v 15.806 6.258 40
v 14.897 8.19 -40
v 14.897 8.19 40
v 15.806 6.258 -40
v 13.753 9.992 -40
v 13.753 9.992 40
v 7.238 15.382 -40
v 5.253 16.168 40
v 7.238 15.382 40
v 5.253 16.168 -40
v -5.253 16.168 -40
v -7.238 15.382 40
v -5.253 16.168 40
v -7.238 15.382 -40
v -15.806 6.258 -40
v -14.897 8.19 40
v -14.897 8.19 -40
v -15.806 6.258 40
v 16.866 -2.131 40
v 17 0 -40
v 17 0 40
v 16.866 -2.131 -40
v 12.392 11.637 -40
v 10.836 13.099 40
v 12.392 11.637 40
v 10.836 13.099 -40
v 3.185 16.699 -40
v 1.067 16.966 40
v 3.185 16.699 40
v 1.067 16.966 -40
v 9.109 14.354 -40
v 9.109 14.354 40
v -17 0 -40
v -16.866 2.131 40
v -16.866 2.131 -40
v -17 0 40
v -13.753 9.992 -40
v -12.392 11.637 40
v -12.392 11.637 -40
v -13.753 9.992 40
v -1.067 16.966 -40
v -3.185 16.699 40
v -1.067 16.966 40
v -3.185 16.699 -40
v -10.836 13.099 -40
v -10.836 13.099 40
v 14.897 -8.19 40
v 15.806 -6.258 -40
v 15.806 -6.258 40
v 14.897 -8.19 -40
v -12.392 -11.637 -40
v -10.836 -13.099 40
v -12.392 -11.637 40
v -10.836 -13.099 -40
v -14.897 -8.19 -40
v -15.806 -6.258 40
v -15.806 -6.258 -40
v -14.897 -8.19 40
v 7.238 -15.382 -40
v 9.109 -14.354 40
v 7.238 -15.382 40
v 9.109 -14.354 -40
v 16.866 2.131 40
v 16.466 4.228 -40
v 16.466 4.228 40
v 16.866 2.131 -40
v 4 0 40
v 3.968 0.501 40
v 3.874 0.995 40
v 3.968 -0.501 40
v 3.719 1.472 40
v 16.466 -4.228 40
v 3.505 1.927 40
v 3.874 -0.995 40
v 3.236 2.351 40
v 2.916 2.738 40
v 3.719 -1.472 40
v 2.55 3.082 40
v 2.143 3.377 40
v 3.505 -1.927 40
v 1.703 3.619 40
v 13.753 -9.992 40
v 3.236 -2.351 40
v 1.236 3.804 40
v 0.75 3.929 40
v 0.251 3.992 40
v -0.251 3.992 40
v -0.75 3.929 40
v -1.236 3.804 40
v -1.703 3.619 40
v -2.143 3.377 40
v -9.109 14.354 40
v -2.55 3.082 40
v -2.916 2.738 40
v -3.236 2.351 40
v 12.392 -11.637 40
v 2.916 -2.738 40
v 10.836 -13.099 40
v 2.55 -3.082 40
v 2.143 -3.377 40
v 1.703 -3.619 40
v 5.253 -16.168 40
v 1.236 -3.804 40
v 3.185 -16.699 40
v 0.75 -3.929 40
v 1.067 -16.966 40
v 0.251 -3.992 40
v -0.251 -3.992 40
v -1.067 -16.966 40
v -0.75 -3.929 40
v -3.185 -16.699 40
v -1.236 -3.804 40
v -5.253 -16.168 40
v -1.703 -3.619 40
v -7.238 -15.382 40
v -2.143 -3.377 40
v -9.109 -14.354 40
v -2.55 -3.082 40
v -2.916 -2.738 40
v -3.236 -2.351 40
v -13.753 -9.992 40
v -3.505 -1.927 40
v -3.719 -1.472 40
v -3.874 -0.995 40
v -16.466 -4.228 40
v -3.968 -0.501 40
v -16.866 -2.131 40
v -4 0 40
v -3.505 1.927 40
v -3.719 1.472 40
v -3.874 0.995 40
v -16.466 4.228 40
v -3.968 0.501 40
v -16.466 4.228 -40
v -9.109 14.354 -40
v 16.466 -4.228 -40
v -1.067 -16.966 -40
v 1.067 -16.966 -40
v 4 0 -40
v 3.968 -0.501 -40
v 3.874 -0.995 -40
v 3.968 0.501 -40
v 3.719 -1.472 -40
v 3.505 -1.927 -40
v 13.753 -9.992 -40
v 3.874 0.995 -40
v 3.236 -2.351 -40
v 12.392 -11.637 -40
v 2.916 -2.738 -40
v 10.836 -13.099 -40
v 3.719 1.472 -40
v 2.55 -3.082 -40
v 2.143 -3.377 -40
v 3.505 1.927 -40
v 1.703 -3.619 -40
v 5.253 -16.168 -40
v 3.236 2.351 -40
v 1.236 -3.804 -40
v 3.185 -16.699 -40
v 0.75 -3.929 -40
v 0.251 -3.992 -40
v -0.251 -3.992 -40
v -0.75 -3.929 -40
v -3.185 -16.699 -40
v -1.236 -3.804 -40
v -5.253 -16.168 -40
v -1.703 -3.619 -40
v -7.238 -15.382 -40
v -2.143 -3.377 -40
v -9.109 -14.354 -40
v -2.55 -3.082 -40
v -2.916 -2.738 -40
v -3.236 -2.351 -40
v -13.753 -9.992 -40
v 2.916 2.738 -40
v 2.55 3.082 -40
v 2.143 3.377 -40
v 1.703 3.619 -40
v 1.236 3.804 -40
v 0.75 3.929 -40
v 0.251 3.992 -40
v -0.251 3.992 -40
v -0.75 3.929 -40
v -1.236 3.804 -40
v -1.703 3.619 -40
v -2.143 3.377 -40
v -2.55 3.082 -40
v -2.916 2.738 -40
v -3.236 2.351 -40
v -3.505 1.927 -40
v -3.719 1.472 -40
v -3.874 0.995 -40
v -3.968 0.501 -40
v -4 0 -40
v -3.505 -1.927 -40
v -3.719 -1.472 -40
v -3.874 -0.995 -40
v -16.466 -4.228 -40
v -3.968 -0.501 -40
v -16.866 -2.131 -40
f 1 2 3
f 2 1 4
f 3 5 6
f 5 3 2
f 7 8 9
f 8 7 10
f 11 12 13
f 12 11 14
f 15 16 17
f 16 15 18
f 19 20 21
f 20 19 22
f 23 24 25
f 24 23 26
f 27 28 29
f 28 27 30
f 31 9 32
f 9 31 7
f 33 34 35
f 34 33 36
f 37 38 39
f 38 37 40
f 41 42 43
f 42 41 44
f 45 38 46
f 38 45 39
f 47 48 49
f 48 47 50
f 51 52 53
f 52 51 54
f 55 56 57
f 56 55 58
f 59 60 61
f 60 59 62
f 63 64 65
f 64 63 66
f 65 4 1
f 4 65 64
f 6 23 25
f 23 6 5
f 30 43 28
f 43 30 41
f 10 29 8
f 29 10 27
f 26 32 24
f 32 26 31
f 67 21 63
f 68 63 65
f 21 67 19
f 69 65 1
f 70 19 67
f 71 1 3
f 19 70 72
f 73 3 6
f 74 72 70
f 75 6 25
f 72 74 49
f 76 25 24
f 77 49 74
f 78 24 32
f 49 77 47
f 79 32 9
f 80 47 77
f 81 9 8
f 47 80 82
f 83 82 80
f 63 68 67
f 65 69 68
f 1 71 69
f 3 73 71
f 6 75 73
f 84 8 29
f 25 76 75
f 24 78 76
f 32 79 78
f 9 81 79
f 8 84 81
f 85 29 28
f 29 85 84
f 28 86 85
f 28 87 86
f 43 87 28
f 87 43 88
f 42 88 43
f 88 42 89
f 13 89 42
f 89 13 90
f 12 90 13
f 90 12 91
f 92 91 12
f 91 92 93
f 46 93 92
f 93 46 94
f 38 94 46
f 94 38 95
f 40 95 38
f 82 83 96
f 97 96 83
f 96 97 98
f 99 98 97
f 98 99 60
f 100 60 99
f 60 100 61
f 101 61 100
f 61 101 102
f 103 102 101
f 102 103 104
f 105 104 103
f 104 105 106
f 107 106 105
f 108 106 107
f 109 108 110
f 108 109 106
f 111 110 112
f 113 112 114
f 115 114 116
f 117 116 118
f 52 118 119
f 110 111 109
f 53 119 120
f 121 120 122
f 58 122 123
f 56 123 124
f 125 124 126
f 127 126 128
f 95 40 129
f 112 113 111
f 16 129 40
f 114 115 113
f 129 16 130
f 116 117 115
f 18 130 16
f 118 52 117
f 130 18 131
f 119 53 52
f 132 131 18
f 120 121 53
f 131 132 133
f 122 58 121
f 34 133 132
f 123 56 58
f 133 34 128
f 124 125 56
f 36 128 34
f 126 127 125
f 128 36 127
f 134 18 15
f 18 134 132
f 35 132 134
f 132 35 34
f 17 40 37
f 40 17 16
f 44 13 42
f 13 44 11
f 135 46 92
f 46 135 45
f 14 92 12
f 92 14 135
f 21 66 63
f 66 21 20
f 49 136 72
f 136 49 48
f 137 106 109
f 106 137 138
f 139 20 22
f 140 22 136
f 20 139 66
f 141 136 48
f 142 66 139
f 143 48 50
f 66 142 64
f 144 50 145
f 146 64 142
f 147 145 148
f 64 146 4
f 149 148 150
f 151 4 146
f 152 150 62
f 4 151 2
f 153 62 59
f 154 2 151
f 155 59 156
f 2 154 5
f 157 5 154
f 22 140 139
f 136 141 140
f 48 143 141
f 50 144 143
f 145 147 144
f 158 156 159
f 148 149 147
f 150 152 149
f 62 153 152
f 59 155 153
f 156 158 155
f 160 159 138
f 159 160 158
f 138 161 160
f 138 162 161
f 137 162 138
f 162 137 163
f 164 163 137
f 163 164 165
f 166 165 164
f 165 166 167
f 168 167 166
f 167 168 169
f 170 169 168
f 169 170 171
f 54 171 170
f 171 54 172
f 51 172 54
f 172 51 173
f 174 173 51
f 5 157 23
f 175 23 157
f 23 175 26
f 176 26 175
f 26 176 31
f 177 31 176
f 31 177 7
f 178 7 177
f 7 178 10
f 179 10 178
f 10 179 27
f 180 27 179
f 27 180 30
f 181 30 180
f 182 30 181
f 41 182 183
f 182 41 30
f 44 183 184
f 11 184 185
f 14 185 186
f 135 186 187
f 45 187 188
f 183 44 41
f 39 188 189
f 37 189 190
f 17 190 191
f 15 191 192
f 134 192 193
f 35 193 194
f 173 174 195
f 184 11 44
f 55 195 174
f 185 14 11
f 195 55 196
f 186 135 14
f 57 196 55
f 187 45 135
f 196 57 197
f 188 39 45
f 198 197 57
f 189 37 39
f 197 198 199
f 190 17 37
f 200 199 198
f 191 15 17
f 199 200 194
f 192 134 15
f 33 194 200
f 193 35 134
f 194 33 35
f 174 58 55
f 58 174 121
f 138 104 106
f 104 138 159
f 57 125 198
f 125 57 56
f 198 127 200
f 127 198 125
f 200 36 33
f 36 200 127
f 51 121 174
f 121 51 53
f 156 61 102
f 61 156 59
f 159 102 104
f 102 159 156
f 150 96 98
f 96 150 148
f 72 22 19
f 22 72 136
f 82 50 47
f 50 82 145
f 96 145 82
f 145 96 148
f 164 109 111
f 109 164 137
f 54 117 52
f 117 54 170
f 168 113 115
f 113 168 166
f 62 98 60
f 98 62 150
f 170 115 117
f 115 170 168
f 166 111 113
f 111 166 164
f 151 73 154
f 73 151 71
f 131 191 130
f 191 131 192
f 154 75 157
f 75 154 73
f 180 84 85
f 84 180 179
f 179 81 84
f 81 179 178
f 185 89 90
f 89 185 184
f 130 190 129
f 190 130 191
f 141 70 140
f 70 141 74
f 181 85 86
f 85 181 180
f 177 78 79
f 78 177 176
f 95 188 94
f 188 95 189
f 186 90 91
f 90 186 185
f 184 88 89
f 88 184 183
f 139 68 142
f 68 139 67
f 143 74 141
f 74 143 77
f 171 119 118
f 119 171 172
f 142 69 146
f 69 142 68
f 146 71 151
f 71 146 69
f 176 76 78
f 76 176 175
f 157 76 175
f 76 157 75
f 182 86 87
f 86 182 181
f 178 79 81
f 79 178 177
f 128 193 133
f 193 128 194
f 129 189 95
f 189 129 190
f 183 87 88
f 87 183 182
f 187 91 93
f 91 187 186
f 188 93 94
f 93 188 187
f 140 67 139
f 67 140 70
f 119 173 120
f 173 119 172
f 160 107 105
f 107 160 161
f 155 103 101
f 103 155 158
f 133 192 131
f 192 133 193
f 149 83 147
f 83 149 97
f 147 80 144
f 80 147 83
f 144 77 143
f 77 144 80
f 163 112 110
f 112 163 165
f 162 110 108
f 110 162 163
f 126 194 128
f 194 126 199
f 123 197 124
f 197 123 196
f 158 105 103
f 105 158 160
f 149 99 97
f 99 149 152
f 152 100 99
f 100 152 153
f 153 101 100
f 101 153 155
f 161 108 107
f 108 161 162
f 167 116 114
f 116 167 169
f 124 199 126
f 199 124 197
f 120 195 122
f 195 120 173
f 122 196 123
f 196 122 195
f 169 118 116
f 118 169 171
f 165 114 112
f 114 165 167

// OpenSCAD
$fn = 50;


difference() {
	union() {
		translate(v = [0, 0, -40.0000000000]) {
			cylinder(h = 80, r = 17.0000000000);
		}
	}
	union() {
		translate(v = [0, 0, -100.0000000000]) {
			cylinder(h = 200, r = 4);
		}
	}
}
